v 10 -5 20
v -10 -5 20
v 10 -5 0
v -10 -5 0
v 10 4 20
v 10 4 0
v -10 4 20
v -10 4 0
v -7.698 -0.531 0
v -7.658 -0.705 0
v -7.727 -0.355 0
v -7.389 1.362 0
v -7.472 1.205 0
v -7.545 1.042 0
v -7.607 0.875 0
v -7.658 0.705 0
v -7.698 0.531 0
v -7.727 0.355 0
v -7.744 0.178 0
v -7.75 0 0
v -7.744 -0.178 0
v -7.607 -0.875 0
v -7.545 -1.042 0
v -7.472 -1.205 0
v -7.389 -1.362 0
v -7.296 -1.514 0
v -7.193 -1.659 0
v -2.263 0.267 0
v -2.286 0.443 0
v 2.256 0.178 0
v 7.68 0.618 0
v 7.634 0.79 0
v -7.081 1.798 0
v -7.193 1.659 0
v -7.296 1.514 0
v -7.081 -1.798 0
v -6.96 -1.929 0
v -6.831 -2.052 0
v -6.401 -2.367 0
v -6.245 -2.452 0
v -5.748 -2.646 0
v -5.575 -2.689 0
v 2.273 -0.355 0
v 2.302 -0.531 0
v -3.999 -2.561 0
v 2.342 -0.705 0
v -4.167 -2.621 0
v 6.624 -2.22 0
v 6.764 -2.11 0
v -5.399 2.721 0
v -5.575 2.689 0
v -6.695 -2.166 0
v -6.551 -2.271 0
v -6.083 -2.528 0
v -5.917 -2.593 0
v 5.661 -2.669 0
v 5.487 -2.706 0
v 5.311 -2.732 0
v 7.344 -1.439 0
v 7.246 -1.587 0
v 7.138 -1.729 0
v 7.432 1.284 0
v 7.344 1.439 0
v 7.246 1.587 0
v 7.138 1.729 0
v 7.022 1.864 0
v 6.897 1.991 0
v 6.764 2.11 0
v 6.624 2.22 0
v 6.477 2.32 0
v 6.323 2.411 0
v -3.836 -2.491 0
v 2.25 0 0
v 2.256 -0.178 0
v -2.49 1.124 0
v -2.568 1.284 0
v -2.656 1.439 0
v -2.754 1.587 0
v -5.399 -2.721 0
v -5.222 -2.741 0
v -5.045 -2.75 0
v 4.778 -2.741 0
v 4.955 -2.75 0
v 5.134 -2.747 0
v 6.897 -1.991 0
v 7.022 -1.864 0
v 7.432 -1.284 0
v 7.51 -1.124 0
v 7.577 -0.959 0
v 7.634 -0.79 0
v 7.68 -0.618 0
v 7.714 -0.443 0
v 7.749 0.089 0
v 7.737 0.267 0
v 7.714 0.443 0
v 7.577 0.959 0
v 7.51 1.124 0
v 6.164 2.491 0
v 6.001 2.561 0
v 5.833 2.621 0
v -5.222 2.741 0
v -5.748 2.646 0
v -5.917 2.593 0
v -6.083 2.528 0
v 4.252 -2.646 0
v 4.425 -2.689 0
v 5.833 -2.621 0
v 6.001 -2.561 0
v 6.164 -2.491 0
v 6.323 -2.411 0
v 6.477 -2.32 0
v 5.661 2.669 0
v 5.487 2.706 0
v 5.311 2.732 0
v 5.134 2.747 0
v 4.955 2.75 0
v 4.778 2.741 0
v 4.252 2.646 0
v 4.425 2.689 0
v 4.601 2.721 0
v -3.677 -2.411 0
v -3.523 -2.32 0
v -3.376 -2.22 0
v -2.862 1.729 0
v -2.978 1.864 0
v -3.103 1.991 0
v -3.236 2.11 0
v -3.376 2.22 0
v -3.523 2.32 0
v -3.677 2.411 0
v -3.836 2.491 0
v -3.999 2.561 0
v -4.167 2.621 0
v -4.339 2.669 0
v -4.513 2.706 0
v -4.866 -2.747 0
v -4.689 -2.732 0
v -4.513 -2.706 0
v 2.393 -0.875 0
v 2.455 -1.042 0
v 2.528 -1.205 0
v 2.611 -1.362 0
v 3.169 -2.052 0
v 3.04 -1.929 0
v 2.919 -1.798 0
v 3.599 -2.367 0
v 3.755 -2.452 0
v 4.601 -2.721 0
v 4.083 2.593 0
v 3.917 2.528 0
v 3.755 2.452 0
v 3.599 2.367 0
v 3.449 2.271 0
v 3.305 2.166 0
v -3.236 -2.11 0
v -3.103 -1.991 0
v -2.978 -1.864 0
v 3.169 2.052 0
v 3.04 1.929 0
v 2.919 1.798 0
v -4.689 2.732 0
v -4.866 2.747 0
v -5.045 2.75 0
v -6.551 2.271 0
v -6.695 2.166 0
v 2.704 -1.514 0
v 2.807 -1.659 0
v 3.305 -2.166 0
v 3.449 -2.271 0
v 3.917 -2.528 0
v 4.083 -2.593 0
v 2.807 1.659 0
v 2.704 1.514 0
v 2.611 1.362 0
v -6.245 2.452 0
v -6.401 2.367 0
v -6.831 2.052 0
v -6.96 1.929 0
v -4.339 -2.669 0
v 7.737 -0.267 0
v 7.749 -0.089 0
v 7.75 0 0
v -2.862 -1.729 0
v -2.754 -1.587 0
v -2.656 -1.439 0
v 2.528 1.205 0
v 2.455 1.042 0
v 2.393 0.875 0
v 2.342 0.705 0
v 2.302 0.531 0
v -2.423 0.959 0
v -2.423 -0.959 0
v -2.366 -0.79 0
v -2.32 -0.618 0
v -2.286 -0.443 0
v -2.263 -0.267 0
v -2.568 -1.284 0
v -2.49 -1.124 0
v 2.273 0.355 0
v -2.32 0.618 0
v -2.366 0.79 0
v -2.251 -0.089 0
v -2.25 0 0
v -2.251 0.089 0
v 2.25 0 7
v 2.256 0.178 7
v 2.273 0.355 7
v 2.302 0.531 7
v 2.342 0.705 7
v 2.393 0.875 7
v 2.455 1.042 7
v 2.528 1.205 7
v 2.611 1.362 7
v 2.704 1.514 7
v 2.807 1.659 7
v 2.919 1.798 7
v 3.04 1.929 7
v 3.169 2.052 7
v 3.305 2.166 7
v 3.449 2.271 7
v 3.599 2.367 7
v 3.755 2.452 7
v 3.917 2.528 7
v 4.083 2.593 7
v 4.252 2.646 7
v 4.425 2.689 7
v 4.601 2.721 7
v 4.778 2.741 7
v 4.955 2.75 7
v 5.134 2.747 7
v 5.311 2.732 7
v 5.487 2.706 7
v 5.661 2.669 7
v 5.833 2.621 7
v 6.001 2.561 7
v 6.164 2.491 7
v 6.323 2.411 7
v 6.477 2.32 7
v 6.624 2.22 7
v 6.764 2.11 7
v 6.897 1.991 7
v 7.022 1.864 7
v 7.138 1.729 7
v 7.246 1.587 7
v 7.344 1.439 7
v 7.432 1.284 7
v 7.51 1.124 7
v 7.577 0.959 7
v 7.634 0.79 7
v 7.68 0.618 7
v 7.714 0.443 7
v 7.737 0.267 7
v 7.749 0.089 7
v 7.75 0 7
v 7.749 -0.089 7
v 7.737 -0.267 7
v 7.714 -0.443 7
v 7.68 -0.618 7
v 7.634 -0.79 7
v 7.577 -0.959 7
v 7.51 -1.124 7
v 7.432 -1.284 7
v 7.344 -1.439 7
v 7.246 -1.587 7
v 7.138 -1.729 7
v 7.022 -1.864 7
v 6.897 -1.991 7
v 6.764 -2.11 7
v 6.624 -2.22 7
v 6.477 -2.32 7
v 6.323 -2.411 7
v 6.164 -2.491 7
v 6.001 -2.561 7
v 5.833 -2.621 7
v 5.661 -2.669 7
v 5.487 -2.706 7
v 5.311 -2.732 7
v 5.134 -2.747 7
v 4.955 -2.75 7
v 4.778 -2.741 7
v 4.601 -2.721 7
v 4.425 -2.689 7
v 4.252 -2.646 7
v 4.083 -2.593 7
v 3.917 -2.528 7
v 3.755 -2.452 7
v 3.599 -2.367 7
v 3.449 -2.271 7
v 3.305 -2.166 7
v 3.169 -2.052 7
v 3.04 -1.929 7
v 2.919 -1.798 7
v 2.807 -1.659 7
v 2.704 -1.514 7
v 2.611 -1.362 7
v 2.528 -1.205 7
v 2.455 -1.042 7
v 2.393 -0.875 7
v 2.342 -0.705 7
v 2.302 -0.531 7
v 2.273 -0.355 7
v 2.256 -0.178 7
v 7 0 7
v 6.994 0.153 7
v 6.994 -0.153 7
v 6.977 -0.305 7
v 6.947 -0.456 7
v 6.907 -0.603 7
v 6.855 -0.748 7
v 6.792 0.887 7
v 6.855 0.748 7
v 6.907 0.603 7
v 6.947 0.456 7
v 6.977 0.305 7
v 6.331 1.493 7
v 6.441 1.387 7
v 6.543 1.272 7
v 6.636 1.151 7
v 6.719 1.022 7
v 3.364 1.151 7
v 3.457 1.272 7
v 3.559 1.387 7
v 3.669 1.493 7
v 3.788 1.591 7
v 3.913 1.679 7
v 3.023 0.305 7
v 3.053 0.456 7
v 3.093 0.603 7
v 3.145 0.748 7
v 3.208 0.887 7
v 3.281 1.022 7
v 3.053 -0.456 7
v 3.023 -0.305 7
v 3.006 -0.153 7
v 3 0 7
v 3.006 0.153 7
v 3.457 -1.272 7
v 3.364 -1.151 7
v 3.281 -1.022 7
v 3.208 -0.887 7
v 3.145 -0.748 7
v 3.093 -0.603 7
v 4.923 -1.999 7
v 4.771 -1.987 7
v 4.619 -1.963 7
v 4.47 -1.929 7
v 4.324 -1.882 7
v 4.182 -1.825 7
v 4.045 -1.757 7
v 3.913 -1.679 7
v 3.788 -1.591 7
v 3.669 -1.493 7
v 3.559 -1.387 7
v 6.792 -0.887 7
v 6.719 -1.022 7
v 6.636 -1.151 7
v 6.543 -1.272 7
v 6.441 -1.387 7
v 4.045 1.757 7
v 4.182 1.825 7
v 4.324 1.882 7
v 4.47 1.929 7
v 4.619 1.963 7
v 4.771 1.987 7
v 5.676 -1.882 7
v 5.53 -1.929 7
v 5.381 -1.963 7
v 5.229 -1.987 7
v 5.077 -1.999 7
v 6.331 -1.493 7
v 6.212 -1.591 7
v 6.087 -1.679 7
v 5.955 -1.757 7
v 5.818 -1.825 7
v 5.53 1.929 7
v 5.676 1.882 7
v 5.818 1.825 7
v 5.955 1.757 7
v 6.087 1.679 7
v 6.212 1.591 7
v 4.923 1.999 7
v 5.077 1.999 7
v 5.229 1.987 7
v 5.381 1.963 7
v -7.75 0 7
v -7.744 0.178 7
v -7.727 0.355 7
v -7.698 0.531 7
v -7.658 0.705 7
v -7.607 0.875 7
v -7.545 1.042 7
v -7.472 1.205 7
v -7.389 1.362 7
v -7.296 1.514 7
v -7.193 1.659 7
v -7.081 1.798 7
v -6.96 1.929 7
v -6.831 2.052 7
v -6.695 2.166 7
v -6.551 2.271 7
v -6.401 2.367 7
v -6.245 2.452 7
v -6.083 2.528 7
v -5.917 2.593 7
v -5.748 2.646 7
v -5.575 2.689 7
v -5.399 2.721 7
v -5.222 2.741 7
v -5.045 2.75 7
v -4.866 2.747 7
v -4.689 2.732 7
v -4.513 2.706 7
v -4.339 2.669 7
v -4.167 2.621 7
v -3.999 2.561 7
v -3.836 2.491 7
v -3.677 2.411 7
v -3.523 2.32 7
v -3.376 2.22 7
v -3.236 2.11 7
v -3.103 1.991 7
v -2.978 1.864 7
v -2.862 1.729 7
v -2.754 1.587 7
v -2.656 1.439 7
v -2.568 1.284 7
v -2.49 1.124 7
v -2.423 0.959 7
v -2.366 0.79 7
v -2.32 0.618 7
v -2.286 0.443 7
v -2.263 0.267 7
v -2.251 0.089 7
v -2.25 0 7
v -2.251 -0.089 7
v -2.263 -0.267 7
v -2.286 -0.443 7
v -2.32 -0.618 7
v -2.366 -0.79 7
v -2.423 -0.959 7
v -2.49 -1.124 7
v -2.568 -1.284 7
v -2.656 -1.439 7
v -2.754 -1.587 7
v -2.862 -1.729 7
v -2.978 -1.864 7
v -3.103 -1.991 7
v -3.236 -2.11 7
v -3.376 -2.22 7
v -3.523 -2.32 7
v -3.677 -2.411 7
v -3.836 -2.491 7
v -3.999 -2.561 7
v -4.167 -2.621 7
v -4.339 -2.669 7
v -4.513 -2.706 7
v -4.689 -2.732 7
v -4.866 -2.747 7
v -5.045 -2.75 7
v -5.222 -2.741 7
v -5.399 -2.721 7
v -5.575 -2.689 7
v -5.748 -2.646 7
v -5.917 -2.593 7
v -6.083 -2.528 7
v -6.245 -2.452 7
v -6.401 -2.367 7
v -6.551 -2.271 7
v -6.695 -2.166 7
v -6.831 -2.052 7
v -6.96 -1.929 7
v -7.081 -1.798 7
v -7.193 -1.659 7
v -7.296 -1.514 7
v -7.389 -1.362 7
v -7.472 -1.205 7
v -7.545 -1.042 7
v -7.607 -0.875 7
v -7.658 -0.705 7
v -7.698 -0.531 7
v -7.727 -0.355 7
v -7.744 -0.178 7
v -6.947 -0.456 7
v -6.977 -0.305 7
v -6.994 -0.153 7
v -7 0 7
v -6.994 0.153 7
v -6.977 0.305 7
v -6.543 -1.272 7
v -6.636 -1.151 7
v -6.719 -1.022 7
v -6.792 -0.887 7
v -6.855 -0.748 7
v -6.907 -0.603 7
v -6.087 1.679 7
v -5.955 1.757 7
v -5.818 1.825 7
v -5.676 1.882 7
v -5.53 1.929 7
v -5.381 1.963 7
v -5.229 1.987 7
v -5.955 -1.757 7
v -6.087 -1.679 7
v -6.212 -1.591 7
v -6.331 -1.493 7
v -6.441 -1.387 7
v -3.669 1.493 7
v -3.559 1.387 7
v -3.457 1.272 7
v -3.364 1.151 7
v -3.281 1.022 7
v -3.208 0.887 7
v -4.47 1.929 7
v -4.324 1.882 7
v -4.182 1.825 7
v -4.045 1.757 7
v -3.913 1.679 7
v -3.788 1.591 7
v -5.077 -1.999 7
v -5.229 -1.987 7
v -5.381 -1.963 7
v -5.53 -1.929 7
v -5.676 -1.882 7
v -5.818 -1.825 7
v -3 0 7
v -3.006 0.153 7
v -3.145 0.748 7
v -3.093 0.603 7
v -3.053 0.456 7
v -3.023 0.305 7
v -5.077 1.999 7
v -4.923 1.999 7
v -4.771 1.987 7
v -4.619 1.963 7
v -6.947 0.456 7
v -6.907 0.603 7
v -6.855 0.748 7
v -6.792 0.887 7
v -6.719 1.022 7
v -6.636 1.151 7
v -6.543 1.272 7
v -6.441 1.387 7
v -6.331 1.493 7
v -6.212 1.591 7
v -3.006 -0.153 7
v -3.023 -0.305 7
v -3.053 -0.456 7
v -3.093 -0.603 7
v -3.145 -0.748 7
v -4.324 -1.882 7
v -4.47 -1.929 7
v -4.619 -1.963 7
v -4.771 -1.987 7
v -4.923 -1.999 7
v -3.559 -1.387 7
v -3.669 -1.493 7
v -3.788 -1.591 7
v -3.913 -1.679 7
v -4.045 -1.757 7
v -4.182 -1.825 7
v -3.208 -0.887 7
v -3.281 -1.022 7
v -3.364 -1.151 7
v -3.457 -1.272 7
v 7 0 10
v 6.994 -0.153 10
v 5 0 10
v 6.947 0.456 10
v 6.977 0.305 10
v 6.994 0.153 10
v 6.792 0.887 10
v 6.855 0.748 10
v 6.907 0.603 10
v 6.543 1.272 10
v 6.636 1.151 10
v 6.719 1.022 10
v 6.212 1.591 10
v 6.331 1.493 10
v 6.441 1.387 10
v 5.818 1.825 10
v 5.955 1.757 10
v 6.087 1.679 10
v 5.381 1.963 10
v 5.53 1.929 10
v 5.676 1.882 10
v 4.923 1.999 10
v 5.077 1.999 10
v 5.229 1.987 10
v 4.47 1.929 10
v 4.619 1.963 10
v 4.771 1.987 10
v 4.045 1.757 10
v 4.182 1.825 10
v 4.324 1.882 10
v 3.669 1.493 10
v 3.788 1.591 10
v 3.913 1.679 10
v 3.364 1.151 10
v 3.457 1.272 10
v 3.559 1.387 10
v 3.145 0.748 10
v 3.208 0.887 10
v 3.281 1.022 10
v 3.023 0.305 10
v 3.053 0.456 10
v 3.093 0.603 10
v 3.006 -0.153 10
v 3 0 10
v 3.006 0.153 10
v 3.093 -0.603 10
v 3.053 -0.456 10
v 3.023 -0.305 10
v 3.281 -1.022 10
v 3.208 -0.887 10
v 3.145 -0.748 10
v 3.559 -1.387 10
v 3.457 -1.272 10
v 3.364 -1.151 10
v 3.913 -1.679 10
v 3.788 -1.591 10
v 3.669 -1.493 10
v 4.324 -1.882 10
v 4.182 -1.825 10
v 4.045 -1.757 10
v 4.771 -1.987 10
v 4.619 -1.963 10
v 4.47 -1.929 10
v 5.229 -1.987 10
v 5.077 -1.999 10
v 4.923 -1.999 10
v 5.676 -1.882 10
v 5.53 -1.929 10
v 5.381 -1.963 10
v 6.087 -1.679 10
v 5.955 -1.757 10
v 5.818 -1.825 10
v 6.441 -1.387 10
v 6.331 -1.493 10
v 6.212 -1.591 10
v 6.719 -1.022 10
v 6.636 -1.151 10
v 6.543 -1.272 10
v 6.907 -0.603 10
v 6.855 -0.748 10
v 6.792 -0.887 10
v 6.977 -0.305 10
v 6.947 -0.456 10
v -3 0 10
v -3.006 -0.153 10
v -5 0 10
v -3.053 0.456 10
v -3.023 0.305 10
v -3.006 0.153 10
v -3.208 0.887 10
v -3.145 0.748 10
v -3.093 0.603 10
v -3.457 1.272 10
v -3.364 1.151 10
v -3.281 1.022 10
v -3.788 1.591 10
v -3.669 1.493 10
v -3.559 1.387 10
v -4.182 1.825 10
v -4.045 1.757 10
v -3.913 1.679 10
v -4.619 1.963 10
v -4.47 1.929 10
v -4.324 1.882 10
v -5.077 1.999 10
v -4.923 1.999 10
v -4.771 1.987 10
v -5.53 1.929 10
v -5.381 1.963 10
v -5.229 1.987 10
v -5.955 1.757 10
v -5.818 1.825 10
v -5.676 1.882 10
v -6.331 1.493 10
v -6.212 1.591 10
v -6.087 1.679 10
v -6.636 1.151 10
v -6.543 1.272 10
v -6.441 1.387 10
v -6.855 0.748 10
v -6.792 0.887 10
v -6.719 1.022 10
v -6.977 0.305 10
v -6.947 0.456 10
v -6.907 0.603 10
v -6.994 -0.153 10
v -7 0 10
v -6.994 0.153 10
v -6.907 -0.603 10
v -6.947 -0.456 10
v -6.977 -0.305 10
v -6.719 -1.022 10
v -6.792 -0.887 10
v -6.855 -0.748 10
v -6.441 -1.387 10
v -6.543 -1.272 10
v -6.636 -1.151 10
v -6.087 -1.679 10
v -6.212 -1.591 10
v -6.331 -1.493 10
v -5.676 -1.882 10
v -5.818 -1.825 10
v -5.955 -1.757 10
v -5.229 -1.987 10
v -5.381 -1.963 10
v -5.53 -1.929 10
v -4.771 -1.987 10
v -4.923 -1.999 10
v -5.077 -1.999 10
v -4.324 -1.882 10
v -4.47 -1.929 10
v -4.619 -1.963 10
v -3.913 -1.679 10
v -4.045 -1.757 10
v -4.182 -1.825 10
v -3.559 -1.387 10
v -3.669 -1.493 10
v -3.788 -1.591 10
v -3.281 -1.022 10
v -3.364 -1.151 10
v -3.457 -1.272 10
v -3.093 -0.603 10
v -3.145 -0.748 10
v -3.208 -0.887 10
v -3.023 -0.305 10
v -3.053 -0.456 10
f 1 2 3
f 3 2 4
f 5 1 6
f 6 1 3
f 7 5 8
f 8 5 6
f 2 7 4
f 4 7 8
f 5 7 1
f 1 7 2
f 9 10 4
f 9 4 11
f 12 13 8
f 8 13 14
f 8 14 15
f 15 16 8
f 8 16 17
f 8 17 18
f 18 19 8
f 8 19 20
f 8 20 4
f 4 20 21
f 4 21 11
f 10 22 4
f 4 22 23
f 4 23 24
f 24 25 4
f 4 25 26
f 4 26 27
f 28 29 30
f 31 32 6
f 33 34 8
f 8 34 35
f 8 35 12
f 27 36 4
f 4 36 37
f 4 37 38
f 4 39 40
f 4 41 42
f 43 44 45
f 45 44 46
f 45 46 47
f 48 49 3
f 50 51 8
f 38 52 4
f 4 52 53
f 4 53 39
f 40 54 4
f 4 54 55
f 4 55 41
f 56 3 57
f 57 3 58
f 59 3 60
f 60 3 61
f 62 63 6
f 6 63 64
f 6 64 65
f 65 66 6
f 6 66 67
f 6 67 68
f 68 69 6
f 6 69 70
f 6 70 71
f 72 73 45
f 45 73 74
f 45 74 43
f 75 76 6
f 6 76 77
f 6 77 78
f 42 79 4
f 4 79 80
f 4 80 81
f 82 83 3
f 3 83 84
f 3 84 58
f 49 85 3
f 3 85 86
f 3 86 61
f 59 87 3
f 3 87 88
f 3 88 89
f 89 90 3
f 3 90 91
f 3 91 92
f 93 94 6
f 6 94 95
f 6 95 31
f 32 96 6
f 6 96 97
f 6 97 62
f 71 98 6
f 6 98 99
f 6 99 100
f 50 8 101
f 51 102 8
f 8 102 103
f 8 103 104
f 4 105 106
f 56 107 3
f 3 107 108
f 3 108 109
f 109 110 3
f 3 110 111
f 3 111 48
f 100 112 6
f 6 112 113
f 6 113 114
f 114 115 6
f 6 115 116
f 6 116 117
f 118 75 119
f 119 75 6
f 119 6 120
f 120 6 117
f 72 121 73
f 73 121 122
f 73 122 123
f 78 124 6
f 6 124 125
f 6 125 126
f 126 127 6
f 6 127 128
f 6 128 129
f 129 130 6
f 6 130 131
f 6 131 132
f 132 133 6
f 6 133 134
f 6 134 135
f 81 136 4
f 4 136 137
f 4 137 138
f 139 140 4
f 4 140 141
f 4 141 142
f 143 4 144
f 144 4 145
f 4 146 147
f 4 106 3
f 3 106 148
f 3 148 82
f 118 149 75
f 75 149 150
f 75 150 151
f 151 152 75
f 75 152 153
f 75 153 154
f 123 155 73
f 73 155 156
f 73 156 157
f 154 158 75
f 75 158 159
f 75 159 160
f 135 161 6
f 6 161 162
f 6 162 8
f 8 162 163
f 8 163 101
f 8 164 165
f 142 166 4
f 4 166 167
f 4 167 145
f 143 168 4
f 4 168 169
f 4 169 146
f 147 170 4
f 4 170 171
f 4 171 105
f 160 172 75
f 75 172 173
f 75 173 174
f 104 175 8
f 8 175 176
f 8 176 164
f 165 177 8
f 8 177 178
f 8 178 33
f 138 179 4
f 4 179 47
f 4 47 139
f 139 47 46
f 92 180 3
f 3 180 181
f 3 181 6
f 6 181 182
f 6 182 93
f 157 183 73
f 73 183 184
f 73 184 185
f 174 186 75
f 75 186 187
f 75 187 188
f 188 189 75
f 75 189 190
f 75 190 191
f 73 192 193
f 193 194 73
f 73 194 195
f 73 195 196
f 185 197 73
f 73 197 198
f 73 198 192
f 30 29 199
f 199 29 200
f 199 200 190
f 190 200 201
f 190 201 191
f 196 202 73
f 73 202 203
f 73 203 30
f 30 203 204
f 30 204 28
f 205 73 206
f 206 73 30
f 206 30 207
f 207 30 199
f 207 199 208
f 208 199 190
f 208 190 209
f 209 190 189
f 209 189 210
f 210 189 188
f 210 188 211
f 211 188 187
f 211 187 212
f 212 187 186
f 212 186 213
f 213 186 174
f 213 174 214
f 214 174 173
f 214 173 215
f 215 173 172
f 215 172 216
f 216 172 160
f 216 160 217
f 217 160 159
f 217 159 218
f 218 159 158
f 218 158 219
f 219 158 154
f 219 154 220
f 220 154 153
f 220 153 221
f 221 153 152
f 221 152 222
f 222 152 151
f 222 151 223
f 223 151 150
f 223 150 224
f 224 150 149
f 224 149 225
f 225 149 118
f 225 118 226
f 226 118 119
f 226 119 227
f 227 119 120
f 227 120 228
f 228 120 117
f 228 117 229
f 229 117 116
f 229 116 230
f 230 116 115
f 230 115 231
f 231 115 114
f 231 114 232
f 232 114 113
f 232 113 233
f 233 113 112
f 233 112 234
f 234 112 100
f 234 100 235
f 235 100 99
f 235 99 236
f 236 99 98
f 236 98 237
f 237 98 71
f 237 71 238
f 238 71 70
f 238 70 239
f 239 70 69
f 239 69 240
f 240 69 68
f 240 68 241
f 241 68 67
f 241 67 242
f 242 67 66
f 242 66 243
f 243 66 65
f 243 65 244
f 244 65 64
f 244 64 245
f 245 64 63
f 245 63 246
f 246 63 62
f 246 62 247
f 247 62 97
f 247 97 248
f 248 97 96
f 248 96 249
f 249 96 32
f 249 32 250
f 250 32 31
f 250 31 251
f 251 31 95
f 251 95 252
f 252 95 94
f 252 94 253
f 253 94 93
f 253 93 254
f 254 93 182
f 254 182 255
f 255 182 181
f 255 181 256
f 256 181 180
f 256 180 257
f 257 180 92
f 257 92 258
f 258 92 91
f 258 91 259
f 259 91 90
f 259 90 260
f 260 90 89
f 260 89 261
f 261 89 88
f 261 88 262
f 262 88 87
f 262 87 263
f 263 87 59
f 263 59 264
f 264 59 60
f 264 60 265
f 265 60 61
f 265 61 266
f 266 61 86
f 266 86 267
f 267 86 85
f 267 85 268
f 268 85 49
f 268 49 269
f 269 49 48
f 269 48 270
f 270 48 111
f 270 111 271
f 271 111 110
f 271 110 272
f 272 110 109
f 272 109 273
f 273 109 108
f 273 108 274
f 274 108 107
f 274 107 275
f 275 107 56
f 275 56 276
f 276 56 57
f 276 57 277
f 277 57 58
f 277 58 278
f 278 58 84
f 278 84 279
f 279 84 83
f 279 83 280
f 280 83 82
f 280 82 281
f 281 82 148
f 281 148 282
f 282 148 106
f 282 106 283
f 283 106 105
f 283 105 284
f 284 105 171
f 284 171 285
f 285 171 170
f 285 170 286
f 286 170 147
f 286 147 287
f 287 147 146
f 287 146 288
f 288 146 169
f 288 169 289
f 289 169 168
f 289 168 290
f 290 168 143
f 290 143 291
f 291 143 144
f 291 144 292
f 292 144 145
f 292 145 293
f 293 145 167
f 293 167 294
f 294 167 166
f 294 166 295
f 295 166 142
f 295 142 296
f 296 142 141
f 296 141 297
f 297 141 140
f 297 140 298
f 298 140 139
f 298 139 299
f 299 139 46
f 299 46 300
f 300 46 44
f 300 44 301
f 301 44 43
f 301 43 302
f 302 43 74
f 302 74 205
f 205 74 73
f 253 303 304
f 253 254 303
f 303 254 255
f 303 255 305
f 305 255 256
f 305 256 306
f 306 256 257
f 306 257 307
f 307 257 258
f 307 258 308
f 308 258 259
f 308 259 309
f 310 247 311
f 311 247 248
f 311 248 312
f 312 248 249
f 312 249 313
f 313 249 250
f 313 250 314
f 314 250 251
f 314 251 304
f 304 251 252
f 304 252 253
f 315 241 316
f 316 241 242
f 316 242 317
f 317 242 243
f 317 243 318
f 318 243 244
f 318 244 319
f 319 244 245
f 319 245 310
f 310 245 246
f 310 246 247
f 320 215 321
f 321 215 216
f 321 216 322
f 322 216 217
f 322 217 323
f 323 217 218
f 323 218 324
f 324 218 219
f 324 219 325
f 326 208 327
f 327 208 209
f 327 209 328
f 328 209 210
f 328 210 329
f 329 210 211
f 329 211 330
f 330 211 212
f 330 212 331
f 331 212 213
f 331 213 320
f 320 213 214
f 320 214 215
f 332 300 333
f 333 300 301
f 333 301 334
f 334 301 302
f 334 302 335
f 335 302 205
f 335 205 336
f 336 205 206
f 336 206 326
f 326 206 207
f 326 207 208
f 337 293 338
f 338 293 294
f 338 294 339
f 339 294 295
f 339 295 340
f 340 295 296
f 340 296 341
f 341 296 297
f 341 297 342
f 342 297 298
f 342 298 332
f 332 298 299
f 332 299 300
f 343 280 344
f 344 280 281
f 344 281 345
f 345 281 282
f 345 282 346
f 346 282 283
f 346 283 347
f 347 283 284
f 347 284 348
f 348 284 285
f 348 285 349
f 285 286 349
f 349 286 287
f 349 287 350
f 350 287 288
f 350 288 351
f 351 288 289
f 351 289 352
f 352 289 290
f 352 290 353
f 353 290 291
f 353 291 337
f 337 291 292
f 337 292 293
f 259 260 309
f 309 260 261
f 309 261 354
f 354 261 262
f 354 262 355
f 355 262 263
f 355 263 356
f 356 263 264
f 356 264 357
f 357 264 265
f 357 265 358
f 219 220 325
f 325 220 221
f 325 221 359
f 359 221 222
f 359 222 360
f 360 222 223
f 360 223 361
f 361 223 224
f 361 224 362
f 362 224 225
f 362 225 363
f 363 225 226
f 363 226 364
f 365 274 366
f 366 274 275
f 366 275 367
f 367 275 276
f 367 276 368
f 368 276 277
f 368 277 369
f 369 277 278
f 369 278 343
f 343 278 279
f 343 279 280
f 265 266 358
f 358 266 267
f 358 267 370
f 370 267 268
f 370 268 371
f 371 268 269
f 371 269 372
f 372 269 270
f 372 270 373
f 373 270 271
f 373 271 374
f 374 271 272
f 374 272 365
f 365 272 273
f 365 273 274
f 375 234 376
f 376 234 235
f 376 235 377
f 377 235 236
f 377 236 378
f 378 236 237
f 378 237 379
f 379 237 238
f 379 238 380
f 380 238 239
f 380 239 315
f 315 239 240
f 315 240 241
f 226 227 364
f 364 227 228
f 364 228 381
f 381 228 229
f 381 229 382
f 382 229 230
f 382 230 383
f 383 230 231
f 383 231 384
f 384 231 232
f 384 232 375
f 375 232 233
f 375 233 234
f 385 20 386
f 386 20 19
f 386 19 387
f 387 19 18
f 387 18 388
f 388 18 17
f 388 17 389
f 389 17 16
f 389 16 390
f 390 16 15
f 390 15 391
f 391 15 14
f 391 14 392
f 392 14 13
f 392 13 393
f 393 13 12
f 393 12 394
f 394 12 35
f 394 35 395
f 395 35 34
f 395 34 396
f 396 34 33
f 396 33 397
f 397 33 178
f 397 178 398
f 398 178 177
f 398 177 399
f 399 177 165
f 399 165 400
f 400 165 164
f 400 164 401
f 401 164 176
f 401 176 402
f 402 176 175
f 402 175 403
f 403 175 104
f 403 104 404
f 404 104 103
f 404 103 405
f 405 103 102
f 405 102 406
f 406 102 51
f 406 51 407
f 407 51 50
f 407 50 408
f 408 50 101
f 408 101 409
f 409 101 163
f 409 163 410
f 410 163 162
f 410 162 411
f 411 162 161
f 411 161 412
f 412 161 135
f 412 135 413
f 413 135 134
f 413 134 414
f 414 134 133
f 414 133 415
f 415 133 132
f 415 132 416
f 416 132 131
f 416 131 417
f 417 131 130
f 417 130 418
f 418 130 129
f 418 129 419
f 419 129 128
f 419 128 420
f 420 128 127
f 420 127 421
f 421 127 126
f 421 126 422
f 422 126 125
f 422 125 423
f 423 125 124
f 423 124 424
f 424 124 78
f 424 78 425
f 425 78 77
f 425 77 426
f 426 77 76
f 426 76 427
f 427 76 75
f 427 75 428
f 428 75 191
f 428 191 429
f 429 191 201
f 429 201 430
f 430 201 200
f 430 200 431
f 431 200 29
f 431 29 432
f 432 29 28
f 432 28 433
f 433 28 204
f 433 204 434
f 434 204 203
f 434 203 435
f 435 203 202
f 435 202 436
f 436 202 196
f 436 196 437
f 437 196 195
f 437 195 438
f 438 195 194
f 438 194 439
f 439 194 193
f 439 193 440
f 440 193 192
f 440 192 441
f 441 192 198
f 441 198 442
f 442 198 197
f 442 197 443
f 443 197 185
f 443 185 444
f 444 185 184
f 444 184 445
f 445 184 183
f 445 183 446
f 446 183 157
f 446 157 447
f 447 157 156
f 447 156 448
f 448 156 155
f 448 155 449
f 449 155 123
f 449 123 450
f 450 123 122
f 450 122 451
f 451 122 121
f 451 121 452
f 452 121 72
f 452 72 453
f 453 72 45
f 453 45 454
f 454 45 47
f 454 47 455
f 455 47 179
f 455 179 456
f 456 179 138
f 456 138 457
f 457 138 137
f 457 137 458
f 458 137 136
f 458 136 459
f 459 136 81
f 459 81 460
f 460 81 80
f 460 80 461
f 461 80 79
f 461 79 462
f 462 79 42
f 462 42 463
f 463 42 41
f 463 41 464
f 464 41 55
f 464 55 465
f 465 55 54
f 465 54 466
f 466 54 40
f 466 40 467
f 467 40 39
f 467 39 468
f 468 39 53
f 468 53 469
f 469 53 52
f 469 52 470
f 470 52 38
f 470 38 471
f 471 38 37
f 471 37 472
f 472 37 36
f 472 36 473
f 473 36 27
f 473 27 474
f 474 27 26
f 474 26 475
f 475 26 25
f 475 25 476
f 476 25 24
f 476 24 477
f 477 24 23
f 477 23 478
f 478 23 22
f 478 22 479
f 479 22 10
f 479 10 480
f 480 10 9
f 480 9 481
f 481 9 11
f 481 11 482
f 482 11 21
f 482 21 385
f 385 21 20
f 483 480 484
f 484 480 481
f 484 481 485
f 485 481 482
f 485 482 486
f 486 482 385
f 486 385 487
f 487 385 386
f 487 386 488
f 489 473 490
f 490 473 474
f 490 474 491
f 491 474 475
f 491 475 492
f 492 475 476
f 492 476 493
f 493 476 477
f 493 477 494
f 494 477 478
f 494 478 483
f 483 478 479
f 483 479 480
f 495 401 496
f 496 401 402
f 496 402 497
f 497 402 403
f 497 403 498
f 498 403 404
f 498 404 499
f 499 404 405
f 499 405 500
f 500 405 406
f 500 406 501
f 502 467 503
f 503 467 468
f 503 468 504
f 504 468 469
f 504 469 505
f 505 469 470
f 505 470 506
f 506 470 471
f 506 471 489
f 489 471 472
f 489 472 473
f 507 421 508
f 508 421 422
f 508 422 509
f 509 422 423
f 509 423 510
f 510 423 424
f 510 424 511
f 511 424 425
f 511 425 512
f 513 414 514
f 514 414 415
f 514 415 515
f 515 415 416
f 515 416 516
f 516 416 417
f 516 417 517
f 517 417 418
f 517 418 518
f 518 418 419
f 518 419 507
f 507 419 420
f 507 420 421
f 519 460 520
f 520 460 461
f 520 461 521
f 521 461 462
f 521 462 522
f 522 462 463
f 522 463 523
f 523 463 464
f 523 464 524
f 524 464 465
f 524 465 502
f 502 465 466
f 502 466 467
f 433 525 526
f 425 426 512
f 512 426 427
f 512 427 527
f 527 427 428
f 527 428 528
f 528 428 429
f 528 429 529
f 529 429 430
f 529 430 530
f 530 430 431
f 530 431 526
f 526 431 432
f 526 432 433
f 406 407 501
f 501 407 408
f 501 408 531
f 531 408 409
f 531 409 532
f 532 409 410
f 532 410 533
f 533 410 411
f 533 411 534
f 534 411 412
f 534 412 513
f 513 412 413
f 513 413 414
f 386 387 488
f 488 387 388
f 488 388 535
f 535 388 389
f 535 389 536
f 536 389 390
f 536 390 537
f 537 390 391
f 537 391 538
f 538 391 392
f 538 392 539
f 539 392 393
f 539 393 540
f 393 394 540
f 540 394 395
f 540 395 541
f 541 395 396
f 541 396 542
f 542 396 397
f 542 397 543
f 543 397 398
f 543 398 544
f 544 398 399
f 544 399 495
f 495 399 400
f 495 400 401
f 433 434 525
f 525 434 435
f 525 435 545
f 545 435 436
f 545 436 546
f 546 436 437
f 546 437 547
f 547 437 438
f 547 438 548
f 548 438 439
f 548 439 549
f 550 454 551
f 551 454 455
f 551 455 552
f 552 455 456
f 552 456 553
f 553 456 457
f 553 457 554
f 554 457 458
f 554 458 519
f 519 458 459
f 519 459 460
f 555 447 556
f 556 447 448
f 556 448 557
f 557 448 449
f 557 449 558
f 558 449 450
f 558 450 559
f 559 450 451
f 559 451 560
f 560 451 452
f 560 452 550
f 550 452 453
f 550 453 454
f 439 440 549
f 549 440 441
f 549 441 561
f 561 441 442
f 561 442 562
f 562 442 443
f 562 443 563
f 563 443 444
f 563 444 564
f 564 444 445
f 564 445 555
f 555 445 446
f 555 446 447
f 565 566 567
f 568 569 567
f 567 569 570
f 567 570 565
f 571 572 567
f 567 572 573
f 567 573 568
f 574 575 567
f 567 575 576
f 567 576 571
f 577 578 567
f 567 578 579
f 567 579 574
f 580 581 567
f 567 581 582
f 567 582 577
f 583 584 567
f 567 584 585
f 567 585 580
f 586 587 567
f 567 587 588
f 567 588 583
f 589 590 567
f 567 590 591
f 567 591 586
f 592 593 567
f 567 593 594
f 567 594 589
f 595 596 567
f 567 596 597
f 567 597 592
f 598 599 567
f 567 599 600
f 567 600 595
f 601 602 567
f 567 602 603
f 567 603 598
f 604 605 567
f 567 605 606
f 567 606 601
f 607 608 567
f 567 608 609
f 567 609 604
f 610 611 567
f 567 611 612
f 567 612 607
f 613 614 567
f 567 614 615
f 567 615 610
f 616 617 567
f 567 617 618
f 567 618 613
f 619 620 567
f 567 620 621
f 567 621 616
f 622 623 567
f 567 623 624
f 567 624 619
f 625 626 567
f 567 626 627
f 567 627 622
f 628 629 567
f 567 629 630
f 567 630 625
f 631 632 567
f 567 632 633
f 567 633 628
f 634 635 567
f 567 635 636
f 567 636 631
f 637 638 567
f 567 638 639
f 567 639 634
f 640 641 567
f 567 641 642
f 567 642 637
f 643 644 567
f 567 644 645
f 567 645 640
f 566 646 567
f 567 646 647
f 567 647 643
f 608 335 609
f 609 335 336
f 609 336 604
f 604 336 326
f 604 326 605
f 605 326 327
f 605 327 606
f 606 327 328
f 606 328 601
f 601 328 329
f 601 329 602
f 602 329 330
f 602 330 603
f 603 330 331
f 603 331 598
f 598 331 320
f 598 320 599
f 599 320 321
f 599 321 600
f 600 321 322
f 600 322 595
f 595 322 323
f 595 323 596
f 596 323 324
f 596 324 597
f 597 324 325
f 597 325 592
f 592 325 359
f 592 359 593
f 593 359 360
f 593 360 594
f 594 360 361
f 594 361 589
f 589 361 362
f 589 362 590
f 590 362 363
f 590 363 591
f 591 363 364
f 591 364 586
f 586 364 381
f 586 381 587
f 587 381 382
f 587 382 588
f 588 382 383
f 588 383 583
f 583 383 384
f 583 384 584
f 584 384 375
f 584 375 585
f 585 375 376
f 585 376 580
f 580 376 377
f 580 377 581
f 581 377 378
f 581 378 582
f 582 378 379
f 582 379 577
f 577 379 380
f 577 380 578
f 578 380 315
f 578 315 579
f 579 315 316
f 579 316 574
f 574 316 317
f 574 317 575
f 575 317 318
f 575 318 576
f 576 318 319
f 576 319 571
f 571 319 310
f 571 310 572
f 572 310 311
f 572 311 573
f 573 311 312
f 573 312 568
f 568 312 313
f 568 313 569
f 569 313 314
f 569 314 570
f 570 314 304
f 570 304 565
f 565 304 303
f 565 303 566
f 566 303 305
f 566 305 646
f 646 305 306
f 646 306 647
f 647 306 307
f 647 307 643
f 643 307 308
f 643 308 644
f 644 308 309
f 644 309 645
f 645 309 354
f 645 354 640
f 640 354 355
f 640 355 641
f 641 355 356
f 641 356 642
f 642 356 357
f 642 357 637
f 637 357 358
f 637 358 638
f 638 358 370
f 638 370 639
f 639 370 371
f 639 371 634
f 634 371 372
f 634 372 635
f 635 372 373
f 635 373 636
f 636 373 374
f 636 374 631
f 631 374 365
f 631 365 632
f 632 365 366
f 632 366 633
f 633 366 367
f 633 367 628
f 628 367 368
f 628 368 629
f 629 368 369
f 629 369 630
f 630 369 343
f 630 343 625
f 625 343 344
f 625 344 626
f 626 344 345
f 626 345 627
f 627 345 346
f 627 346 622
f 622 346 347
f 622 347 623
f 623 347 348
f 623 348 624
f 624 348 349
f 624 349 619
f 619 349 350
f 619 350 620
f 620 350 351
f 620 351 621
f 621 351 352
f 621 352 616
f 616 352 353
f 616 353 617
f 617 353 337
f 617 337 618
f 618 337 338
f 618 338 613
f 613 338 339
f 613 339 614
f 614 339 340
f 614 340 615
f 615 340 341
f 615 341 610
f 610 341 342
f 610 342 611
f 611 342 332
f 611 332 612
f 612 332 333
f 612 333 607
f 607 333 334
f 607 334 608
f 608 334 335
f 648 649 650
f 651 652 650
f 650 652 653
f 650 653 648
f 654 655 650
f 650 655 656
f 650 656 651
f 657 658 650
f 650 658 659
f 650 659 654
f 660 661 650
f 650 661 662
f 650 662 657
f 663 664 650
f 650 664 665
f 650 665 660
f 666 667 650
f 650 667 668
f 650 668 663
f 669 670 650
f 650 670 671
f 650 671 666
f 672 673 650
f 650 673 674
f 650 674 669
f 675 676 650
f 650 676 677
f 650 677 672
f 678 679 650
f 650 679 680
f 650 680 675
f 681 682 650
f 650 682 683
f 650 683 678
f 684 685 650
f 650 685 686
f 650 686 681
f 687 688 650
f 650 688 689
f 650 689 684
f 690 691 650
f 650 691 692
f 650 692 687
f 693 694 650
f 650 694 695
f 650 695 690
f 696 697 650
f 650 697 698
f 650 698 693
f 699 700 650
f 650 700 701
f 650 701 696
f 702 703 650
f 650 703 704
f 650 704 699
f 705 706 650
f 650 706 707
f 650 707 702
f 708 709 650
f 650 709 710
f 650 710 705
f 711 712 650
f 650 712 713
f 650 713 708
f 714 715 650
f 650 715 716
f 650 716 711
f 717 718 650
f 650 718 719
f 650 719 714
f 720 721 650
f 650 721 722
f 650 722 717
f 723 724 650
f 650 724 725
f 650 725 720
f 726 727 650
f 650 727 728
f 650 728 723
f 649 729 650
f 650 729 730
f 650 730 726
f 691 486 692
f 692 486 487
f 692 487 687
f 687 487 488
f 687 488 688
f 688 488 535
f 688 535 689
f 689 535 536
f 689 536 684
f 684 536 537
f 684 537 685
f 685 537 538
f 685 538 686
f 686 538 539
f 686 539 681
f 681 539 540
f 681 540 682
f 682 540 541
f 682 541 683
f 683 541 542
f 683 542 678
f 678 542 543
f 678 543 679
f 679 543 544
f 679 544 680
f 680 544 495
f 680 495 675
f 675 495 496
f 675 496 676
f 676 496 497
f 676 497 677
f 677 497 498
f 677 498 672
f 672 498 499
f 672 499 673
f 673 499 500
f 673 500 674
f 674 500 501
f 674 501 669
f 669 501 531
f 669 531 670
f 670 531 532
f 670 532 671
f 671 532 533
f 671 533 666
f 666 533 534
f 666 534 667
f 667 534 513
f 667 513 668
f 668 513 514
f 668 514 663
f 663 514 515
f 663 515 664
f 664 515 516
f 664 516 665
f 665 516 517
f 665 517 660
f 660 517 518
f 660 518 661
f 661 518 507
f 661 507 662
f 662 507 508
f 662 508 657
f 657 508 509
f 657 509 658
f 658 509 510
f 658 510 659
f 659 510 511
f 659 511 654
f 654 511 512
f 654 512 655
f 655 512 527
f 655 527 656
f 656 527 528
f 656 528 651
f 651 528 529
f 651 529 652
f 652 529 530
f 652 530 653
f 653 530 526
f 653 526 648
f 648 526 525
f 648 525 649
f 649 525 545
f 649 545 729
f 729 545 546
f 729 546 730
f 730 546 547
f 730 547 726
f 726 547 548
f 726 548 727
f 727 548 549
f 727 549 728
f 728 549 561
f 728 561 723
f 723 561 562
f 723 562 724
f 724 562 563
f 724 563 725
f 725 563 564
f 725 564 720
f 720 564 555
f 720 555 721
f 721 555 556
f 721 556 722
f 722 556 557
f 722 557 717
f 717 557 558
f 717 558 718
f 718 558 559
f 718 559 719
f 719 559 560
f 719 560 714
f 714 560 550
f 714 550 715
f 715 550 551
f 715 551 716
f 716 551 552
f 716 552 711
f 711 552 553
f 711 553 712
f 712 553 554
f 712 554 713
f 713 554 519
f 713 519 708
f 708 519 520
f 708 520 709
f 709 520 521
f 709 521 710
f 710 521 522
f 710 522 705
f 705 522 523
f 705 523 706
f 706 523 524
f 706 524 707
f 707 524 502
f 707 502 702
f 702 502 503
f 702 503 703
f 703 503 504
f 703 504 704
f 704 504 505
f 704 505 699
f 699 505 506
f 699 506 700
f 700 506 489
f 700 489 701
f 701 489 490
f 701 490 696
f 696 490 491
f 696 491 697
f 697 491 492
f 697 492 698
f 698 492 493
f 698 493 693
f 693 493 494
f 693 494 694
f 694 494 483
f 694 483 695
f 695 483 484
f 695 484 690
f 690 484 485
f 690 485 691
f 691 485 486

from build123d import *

# Parameters (mm, degrees)
SKETCH1_W           = 20
SKETCH1_H           = 9
BOSS_EXTRUDE1_DEPTH = 20
SKETCH1_10_R        = 2
CUT_EXTRUDE2_DEPTH  = 10
SKETCH2_R           = 2.75
CUT_EXTRUDE1_DEPTH  = 7


with BuildPart() as part:
    # Sketch1 → Boss-Extrude1 (new body)
    with BuildSketch(Plane.XY):
        with Locations((0, -0.5)):
            Rectangle(SKETCH1_W, SKETCH1_H)
    extrude(amount=BOSS_EXTRUDE1_DEPTH)

    # Sketch1<10> → Cut-Extrude2 (cut)
    with BuildSketch(Plane.XY):
        with Locations((-5, 0)):
            Circle(SKETCH1_10_R)
        with Locations((5, 0)):
            Circle(SKETCH1_10_R)
    extrude(amount=CUT_EXTRUDE2_DEPTH, mode=Mode.SUBTRACT)

    # Sketch2 → Cut-Extrude1 (cut)
    with BuildSketch(Plane.XY):
        with Locations((-5, 0)):
            Circle(SKETCH2_R)
        with Locations((5, 0)):
            Circle(SKETCH2_R)
    extrude(amount=CUT_EXTRUDE1_DEPTH, mode=Mode.SUBTRACT)


solid = part.part
